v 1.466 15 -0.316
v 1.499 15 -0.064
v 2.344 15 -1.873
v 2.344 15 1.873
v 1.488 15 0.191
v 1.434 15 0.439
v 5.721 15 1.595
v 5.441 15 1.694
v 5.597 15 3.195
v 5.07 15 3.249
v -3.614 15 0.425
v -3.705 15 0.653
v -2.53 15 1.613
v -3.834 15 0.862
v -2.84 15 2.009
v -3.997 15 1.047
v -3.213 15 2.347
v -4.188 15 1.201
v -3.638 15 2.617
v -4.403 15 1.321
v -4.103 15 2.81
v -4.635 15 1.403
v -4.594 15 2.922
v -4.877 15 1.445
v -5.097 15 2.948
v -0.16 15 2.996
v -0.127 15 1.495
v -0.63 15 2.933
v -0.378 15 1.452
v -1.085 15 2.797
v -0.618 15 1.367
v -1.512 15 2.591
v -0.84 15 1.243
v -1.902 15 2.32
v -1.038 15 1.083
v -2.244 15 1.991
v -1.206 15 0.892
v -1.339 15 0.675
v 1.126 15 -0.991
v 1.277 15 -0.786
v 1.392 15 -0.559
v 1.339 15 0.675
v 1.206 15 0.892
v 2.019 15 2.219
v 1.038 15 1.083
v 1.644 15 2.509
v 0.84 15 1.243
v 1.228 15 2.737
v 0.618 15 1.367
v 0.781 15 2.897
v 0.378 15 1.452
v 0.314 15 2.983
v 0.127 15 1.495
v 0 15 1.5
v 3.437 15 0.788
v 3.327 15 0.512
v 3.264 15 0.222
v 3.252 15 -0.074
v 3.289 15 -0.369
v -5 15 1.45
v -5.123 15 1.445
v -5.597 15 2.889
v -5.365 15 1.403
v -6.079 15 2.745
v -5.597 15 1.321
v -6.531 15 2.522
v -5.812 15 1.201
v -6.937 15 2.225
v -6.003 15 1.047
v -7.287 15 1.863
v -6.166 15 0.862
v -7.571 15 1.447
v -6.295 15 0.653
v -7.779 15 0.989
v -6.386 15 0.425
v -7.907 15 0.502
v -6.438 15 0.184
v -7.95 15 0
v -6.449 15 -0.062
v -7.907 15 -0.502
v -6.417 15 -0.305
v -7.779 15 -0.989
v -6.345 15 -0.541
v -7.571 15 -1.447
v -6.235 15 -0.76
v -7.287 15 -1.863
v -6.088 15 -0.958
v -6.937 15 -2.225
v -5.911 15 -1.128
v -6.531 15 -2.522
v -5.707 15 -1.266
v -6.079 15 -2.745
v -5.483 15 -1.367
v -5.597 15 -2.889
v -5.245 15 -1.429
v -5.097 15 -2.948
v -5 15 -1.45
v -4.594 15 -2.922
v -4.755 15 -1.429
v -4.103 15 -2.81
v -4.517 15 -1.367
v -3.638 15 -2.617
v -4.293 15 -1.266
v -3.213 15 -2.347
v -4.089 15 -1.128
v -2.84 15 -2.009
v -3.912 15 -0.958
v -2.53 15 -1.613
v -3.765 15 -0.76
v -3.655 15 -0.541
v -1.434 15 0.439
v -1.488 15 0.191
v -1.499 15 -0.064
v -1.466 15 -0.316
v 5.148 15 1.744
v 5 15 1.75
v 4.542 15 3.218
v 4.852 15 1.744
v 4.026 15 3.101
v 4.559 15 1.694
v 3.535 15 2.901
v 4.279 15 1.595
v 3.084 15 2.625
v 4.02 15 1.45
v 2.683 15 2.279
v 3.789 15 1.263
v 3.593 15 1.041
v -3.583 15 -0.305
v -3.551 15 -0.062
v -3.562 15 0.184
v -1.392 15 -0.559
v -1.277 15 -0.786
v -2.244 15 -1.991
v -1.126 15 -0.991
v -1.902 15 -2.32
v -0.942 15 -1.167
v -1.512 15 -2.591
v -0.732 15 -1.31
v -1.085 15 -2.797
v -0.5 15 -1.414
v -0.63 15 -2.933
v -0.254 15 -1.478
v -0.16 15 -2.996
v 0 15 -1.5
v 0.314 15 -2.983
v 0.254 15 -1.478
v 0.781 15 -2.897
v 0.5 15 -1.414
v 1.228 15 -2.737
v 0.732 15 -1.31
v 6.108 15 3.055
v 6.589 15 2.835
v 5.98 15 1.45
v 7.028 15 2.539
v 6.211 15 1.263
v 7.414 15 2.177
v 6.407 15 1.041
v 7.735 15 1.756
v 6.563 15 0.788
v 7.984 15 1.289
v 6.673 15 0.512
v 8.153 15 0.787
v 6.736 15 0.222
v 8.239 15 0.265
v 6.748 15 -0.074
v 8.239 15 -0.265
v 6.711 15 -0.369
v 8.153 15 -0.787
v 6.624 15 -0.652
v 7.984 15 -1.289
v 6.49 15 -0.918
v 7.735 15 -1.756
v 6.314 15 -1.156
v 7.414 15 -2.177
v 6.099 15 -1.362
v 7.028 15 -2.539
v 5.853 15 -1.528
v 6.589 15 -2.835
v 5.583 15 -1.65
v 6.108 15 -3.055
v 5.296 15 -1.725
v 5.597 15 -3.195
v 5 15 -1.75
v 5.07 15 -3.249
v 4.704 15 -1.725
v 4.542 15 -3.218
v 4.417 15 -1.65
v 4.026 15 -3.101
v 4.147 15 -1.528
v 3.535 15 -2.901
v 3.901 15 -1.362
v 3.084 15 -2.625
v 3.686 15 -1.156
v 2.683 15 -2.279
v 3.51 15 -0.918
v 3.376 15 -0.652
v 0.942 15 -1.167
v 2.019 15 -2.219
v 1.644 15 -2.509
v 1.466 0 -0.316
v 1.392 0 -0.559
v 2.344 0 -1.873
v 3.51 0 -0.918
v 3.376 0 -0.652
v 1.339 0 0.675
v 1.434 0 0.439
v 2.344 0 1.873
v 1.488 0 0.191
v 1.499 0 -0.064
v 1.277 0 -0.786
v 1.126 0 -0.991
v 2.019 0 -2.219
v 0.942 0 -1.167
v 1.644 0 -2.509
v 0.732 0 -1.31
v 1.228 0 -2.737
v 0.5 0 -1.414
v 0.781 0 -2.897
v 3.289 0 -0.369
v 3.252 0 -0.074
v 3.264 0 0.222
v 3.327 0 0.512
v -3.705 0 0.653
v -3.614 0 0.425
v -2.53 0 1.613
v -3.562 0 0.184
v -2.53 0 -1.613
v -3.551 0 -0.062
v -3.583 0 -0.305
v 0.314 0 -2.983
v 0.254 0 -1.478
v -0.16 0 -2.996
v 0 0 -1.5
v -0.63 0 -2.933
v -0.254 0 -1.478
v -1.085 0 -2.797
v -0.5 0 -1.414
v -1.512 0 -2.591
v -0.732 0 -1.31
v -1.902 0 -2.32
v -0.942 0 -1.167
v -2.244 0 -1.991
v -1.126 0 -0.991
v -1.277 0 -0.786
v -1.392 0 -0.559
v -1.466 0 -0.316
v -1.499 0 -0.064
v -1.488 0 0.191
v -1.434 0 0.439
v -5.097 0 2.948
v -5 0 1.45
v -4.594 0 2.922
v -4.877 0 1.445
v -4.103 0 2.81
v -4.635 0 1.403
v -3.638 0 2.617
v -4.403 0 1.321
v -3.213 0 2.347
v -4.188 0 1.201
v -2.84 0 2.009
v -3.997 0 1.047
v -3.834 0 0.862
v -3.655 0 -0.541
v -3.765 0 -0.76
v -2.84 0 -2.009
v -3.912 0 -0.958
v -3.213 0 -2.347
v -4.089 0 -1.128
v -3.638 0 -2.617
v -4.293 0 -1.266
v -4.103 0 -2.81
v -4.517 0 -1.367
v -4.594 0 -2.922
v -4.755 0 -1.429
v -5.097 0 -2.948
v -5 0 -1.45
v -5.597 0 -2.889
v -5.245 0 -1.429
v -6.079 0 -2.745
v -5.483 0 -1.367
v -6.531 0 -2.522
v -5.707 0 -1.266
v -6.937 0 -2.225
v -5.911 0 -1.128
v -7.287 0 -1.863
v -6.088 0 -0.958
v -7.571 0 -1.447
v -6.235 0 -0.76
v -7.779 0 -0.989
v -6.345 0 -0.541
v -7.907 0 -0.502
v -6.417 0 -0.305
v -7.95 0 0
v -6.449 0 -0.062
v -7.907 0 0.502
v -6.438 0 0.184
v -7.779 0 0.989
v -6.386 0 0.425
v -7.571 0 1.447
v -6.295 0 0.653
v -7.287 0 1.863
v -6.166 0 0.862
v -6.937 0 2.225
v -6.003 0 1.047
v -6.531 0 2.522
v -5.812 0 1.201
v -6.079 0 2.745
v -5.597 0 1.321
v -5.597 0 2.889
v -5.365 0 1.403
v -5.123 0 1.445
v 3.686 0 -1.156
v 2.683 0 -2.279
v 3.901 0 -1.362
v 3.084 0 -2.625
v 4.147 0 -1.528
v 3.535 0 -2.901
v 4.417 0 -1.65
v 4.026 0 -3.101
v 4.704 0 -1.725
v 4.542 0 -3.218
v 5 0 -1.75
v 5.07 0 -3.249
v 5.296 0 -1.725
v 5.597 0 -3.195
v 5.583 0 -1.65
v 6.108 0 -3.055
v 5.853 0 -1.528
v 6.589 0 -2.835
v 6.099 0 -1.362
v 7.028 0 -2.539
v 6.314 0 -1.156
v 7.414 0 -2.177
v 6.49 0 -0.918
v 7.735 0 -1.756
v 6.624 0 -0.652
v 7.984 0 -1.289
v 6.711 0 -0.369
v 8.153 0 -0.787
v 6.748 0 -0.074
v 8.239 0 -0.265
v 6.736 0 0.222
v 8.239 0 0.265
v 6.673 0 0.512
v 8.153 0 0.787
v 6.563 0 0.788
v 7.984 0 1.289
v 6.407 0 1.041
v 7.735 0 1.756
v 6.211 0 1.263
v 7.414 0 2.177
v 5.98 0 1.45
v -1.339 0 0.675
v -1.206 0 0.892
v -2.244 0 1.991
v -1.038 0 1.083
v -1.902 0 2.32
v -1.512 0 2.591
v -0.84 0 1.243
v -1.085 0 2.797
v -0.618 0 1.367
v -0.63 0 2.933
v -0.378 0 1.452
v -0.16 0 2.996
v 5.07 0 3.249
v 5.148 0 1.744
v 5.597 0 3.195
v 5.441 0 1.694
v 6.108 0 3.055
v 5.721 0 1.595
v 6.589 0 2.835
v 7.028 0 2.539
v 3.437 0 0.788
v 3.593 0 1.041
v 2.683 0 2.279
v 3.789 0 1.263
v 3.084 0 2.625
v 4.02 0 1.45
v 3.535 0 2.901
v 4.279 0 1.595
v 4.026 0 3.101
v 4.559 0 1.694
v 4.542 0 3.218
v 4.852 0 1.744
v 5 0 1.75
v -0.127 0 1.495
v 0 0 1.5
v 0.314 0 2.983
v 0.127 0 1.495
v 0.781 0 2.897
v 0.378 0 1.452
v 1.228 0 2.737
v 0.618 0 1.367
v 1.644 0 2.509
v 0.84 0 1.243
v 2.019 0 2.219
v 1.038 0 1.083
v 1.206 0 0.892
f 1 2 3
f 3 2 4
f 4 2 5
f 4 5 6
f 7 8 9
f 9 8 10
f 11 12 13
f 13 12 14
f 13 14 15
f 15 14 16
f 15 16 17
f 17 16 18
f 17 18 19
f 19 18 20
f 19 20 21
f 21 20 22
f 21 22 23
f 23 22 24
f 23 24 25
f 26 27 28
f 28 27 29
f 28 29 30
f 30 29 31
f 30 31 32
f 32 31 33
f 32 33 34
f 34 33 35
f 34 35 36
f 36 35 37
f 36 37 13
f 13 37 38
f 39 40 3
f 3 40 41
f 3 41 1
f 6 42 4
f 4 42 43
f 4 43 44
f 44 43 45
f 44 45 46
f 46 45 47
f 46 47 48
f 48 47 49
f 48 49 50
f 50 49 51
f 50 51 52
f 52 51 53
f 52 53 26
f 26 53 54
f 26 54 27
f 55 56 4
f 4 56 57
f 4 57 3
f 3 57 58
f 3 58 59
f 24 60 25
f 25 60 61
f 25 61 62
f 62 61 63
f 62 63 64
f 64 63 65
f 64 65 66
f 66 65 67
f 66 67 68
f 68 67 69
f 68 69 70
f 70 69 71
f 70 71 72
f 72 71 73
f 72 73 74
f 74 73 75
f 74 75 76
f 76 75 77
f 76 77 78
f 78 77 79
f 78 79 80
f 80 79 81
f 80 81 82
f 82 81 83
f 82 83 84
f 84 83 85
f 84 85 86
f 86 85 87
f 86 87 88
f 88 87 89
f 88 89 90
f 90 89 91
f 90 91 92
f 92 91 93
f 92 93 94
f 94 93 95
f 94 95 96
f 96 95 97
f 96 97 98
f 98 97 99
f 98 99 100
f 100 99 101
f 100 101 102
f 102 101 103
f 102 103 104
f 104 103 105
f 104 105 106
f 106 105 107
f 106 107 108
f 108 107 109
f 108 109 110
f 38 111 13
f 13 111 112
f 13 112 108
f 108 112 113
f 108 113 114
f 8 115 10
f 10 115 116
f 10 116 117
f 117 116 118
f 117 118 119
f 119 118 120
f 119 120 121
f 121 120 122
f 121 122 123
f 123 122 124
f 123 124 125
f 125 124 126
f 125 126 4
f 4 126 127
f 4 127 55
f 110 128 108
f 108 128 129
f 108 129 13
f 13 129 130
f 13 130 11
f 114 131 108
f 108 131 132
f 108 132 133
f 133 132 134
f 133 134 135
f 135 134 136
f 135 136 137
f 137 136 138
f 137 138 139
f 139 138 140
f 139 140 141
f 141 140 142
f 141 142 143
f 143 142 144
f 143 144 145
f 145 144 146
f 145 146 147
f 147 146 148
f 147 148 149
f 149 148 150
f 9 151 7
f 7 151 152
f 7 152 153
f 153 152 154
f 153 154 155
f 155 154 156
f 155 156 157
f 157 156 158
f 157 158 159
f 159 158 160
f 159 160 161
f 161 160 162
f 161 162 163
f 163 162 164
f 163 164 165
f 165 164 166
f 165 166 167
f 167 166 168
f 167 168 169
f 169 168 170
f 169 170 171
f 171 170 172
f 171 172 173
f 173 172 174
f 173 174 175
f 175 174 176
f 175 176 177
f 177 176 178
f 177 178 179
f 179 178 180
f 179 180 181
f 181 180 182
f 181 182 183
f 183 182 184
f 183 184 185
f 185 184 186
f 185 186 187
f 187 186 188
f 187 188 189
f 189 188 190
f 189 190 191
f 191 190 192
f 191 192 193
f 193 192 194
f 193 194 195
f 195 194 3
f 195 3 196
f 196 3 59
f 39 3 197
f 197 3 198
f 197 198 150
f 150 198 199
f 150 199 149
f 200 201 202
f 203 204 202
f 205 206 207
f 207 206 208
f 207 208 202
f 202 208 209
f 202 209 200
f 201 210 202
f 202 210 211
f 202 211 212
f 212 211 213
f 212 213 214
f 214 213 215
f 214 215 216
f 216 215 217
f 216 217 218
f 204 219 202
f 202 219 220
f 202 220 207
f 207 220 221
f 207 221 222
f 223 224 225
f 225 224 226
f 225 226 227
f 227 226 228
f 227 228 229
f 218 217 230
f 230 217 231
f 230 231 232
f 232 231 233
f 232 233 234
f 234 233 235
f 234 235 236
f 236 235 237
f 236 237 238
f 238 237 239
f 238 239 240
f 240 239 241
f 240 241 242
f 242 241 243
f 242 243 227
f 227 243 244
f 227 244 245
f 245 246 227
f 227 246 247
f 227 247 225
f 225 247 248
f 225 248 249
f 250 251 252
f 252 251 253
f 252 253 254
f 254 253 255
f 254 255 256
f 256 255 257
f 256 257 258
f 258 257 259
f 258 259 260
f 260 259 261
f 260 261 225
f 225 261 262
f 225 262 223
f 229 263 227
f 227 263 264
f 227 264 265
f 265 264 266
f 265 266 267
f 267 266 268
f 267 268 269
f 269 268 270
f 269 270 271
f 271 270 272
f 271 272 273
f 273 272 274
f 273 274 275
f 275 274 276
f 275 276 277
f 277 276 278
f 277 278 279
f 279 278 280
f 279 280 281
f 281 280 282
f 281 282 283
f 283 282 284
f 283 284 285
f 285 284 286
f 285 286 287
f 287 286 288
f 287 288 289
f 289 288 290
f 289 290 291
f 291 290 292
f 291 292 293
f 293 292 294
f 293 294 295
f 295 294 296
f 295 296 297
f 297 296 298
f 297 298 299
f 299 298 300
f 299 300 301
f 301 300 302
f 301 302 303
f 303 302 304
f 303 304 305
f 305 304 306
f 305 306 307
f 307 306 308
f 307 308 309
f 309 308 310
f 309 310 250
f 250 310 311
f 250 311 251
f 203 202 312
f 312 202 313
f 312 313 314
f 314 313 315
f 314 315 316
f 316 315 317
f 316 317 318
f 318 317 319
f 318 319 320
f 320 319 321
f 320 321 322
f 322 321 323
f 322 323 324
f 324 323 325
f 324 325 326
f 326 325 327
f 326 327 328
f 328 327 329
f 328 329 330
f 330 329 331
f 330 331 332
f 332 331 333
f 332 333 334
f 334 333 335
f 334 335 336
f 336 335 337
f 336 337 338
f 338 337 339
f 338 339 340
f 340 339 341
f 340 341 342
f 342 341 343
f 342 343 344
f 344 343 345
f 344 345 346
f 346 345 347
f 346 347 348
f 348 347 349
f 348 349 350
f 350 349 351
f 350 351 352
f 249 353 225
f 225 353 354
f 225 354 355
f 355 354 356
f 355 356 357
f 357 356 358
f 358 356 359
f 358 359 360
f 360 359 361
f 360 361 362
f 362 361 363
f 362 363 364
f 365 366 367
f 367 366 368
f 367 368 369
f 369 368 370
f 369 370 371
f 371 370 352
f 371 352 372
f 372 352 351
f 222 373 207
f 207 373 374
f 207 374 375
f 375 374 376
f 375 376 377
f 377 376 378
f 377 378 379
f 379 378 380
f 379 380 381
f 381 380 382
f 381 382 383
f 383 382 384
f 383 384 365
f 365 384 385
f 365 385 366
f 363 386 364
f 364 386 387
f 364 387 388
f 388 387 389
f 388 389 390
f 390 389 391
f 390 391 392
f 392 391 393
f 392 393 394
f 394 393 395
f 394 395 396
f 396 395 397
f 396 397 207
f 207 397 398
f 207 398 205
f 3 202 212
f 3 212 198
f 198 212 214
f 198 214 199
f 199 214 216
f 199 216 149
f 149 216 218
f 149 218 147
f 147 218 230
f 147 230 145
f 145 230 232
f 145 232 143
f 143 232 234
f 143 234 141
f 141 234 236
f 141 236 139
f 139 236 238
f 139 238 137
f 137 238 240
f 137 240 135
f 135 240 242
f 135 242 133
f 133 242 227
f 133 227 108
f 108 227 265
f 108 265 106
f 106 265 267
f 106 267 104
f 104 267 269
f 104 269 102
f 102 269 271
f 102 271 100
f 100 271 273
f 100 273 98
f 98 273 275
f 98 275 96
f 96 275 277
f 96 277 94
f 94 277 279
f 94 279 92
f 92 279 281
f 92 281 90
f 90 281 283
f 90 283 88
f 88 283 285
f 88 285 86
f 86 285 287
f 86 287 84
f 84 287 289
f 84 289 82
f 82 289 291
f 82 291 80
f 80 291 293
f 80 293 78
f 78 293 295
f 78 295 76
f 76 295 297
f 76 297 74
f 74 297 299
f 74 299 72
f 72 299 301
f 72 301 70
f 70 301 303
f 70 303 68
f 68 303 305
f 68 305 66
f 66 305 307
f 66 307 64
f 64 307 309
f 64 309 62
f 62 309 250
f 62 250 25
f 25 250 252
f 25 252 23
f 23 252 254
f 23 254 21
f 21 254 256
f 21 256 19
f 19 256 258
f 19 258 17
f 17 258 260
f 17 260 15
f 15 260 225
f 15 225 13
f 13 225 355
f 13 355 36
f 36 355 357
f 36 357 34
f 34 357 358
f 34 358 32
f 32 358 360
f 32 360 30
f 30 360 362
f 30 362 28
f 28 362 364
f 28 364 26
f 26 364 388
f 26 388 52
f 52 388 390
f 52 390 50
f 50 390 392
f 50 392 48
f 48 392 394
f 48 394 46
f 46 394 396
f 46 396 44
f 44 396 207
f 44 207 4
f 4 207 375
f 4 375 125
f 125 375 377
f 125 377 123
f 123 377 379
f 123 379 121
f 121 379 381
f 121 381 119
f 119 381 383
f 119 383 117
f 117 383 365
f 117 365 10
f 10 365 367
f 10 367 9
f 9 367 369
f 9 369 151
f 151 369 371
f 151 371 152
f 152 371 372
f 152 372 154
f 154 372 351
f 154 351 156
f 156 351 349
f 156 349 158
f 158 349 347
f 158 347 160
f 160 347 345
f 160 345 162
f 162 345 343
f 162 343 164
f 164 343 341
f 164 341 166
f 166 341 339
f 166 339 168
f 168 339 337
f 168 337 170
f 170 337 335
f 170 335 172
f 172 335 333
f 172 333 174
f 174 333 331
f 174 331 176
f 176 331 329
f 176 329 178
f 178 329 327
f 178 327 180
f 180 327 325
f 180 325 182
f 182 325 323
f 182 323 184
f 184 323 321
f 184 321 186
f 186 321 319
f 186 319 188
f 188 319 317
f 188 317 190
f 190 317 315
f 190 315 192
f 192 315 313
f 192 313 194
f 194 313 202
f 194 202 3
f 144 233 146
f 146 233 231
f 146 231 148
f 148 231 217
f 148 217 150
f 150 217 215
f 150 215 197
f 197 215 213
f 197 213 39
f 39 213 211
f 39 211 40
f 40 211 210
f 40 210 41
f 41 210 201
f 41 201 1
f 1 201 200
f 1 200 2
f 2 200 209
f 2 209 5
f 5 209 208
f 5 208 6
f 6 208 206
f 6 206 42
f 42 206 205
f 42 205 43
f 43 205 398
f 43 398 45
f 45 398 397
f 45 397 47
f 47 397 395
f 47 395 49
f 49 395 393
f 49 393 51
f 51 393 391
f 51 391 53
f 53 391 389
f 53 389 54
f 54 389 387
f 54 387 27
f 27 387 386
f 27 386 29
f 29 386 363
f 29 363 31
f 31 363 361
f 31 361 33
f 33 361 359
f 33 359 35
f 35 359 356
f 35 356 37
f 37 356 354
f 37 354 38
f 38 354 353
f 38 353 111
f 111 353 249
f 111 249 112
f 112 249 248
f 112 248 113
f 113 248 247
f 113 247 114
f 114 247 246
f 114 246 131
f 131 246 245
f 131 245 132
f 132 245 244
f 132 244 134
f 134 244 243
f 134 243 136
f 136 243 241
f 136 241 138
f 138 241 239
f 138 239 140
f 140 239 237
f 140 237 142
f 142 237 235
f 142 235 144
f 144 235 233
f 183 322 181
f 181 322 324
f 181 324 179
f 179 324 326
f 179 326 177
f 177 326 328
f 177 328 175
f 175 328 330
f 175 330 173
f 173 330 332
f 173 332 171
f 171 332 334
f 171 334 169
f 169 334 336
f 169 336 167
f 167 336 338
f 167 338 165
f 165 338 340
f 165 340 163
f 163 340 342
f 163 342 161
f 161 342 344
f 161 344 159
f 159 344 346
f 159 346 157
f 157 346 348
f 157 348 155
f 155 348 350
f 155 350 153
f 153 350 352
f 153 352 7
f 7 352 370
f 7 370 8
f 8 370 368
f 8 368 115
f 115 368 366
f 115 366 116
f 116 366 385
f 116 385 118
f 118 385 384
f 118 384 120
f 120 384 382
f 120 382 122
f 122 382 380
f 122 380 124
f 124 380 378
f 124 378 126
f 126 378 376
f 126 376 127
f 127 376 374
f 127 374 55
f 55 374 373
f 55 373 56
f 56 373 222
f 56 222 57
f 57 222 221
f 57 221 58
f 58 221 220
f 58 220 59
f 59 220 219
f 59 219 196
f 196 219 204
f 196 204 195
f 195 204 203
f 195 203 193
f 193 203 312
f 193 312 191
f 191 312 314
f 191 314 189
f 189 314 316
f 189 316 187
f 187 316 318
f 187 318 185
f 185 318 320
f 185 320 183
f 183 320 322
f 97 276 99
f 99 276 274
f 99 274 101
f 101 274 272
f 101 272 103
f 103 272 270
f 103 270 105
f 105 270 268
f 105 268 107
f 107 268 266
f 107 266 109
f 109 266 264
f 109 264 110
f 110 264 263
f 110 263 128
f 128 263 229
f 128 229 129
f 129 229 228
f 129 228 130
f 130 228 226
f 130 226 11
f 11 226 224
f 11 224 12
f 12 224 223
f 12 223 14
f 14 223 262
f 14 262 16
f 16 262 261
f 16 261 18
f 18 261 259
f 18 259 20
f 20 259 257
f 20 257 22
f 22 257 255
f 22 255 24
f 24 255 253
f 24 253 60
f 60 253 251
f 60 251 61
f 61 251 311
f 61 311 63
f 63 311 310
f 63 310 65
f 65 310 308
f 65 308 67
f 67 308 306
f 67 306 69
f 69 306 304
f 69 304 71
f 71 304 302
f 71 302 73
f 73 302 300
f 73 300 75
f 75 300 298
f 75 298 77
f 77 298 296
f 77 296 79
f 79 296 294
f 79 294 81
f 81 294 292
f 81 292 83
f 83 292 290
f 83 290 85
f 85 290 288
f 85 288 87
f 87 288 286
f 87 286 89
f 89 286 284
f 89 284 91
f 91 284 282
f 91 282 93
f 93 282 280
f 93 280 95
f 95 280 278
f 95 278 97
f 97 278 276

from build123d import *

# Parameters (mm, degrees)
SKETCH1_R           = 1.5
SKETCH1_R_2         = 1.75
SKETCH1_R_3         = 1.45
BOSS_EXTRUDE1_DEPTH = 15


with BuildPart() as part:
    # Sketch1 → Boss-Extrude1 (new body)
    with BuildSketch(Plane(origin=(0, 0, 0), x_dir=(1, 0, 0), z_dir=(0, 1, 0))):
        with BuildLine():
            ThreePointArc((-2.52975, 1.612564708), (-7.95, 0), (-2.52975, -1.612564708))
            ThreePointArc((-2.52975, -1.612564708), (-0.159877177, -2.995736852), (2.34375, -1.872654783))
            ThreePointArc((2.34375, -1.872654783), (8.25, 0), (2.34375, 1.872654783))
            ThreePointArc((2.34375, 1.872654783), (-0.159877177, 2.995736852), (-2.52975, 1.612564708))
        make_face()
        with Locations(Location((0, 0, 0), (0, 0, 270))):
            Circle(SKETCH1_R, mode=Mode.SUBTRACT)
        with Locations(Location((5, 0, 0), (0, 0, 270))):
            Circle(SKETCH1_R_2, mode=Mode.SUBTRACT)
        with Locations(Location((-5, 0, 0), (0, 0, 270))):
            Circle(SKETCH1_R_3, mode=Mode.SUBTRACT)
    extrude(amount=BOSS_EXTRUDE1_DEPTH)


solid = part.part
